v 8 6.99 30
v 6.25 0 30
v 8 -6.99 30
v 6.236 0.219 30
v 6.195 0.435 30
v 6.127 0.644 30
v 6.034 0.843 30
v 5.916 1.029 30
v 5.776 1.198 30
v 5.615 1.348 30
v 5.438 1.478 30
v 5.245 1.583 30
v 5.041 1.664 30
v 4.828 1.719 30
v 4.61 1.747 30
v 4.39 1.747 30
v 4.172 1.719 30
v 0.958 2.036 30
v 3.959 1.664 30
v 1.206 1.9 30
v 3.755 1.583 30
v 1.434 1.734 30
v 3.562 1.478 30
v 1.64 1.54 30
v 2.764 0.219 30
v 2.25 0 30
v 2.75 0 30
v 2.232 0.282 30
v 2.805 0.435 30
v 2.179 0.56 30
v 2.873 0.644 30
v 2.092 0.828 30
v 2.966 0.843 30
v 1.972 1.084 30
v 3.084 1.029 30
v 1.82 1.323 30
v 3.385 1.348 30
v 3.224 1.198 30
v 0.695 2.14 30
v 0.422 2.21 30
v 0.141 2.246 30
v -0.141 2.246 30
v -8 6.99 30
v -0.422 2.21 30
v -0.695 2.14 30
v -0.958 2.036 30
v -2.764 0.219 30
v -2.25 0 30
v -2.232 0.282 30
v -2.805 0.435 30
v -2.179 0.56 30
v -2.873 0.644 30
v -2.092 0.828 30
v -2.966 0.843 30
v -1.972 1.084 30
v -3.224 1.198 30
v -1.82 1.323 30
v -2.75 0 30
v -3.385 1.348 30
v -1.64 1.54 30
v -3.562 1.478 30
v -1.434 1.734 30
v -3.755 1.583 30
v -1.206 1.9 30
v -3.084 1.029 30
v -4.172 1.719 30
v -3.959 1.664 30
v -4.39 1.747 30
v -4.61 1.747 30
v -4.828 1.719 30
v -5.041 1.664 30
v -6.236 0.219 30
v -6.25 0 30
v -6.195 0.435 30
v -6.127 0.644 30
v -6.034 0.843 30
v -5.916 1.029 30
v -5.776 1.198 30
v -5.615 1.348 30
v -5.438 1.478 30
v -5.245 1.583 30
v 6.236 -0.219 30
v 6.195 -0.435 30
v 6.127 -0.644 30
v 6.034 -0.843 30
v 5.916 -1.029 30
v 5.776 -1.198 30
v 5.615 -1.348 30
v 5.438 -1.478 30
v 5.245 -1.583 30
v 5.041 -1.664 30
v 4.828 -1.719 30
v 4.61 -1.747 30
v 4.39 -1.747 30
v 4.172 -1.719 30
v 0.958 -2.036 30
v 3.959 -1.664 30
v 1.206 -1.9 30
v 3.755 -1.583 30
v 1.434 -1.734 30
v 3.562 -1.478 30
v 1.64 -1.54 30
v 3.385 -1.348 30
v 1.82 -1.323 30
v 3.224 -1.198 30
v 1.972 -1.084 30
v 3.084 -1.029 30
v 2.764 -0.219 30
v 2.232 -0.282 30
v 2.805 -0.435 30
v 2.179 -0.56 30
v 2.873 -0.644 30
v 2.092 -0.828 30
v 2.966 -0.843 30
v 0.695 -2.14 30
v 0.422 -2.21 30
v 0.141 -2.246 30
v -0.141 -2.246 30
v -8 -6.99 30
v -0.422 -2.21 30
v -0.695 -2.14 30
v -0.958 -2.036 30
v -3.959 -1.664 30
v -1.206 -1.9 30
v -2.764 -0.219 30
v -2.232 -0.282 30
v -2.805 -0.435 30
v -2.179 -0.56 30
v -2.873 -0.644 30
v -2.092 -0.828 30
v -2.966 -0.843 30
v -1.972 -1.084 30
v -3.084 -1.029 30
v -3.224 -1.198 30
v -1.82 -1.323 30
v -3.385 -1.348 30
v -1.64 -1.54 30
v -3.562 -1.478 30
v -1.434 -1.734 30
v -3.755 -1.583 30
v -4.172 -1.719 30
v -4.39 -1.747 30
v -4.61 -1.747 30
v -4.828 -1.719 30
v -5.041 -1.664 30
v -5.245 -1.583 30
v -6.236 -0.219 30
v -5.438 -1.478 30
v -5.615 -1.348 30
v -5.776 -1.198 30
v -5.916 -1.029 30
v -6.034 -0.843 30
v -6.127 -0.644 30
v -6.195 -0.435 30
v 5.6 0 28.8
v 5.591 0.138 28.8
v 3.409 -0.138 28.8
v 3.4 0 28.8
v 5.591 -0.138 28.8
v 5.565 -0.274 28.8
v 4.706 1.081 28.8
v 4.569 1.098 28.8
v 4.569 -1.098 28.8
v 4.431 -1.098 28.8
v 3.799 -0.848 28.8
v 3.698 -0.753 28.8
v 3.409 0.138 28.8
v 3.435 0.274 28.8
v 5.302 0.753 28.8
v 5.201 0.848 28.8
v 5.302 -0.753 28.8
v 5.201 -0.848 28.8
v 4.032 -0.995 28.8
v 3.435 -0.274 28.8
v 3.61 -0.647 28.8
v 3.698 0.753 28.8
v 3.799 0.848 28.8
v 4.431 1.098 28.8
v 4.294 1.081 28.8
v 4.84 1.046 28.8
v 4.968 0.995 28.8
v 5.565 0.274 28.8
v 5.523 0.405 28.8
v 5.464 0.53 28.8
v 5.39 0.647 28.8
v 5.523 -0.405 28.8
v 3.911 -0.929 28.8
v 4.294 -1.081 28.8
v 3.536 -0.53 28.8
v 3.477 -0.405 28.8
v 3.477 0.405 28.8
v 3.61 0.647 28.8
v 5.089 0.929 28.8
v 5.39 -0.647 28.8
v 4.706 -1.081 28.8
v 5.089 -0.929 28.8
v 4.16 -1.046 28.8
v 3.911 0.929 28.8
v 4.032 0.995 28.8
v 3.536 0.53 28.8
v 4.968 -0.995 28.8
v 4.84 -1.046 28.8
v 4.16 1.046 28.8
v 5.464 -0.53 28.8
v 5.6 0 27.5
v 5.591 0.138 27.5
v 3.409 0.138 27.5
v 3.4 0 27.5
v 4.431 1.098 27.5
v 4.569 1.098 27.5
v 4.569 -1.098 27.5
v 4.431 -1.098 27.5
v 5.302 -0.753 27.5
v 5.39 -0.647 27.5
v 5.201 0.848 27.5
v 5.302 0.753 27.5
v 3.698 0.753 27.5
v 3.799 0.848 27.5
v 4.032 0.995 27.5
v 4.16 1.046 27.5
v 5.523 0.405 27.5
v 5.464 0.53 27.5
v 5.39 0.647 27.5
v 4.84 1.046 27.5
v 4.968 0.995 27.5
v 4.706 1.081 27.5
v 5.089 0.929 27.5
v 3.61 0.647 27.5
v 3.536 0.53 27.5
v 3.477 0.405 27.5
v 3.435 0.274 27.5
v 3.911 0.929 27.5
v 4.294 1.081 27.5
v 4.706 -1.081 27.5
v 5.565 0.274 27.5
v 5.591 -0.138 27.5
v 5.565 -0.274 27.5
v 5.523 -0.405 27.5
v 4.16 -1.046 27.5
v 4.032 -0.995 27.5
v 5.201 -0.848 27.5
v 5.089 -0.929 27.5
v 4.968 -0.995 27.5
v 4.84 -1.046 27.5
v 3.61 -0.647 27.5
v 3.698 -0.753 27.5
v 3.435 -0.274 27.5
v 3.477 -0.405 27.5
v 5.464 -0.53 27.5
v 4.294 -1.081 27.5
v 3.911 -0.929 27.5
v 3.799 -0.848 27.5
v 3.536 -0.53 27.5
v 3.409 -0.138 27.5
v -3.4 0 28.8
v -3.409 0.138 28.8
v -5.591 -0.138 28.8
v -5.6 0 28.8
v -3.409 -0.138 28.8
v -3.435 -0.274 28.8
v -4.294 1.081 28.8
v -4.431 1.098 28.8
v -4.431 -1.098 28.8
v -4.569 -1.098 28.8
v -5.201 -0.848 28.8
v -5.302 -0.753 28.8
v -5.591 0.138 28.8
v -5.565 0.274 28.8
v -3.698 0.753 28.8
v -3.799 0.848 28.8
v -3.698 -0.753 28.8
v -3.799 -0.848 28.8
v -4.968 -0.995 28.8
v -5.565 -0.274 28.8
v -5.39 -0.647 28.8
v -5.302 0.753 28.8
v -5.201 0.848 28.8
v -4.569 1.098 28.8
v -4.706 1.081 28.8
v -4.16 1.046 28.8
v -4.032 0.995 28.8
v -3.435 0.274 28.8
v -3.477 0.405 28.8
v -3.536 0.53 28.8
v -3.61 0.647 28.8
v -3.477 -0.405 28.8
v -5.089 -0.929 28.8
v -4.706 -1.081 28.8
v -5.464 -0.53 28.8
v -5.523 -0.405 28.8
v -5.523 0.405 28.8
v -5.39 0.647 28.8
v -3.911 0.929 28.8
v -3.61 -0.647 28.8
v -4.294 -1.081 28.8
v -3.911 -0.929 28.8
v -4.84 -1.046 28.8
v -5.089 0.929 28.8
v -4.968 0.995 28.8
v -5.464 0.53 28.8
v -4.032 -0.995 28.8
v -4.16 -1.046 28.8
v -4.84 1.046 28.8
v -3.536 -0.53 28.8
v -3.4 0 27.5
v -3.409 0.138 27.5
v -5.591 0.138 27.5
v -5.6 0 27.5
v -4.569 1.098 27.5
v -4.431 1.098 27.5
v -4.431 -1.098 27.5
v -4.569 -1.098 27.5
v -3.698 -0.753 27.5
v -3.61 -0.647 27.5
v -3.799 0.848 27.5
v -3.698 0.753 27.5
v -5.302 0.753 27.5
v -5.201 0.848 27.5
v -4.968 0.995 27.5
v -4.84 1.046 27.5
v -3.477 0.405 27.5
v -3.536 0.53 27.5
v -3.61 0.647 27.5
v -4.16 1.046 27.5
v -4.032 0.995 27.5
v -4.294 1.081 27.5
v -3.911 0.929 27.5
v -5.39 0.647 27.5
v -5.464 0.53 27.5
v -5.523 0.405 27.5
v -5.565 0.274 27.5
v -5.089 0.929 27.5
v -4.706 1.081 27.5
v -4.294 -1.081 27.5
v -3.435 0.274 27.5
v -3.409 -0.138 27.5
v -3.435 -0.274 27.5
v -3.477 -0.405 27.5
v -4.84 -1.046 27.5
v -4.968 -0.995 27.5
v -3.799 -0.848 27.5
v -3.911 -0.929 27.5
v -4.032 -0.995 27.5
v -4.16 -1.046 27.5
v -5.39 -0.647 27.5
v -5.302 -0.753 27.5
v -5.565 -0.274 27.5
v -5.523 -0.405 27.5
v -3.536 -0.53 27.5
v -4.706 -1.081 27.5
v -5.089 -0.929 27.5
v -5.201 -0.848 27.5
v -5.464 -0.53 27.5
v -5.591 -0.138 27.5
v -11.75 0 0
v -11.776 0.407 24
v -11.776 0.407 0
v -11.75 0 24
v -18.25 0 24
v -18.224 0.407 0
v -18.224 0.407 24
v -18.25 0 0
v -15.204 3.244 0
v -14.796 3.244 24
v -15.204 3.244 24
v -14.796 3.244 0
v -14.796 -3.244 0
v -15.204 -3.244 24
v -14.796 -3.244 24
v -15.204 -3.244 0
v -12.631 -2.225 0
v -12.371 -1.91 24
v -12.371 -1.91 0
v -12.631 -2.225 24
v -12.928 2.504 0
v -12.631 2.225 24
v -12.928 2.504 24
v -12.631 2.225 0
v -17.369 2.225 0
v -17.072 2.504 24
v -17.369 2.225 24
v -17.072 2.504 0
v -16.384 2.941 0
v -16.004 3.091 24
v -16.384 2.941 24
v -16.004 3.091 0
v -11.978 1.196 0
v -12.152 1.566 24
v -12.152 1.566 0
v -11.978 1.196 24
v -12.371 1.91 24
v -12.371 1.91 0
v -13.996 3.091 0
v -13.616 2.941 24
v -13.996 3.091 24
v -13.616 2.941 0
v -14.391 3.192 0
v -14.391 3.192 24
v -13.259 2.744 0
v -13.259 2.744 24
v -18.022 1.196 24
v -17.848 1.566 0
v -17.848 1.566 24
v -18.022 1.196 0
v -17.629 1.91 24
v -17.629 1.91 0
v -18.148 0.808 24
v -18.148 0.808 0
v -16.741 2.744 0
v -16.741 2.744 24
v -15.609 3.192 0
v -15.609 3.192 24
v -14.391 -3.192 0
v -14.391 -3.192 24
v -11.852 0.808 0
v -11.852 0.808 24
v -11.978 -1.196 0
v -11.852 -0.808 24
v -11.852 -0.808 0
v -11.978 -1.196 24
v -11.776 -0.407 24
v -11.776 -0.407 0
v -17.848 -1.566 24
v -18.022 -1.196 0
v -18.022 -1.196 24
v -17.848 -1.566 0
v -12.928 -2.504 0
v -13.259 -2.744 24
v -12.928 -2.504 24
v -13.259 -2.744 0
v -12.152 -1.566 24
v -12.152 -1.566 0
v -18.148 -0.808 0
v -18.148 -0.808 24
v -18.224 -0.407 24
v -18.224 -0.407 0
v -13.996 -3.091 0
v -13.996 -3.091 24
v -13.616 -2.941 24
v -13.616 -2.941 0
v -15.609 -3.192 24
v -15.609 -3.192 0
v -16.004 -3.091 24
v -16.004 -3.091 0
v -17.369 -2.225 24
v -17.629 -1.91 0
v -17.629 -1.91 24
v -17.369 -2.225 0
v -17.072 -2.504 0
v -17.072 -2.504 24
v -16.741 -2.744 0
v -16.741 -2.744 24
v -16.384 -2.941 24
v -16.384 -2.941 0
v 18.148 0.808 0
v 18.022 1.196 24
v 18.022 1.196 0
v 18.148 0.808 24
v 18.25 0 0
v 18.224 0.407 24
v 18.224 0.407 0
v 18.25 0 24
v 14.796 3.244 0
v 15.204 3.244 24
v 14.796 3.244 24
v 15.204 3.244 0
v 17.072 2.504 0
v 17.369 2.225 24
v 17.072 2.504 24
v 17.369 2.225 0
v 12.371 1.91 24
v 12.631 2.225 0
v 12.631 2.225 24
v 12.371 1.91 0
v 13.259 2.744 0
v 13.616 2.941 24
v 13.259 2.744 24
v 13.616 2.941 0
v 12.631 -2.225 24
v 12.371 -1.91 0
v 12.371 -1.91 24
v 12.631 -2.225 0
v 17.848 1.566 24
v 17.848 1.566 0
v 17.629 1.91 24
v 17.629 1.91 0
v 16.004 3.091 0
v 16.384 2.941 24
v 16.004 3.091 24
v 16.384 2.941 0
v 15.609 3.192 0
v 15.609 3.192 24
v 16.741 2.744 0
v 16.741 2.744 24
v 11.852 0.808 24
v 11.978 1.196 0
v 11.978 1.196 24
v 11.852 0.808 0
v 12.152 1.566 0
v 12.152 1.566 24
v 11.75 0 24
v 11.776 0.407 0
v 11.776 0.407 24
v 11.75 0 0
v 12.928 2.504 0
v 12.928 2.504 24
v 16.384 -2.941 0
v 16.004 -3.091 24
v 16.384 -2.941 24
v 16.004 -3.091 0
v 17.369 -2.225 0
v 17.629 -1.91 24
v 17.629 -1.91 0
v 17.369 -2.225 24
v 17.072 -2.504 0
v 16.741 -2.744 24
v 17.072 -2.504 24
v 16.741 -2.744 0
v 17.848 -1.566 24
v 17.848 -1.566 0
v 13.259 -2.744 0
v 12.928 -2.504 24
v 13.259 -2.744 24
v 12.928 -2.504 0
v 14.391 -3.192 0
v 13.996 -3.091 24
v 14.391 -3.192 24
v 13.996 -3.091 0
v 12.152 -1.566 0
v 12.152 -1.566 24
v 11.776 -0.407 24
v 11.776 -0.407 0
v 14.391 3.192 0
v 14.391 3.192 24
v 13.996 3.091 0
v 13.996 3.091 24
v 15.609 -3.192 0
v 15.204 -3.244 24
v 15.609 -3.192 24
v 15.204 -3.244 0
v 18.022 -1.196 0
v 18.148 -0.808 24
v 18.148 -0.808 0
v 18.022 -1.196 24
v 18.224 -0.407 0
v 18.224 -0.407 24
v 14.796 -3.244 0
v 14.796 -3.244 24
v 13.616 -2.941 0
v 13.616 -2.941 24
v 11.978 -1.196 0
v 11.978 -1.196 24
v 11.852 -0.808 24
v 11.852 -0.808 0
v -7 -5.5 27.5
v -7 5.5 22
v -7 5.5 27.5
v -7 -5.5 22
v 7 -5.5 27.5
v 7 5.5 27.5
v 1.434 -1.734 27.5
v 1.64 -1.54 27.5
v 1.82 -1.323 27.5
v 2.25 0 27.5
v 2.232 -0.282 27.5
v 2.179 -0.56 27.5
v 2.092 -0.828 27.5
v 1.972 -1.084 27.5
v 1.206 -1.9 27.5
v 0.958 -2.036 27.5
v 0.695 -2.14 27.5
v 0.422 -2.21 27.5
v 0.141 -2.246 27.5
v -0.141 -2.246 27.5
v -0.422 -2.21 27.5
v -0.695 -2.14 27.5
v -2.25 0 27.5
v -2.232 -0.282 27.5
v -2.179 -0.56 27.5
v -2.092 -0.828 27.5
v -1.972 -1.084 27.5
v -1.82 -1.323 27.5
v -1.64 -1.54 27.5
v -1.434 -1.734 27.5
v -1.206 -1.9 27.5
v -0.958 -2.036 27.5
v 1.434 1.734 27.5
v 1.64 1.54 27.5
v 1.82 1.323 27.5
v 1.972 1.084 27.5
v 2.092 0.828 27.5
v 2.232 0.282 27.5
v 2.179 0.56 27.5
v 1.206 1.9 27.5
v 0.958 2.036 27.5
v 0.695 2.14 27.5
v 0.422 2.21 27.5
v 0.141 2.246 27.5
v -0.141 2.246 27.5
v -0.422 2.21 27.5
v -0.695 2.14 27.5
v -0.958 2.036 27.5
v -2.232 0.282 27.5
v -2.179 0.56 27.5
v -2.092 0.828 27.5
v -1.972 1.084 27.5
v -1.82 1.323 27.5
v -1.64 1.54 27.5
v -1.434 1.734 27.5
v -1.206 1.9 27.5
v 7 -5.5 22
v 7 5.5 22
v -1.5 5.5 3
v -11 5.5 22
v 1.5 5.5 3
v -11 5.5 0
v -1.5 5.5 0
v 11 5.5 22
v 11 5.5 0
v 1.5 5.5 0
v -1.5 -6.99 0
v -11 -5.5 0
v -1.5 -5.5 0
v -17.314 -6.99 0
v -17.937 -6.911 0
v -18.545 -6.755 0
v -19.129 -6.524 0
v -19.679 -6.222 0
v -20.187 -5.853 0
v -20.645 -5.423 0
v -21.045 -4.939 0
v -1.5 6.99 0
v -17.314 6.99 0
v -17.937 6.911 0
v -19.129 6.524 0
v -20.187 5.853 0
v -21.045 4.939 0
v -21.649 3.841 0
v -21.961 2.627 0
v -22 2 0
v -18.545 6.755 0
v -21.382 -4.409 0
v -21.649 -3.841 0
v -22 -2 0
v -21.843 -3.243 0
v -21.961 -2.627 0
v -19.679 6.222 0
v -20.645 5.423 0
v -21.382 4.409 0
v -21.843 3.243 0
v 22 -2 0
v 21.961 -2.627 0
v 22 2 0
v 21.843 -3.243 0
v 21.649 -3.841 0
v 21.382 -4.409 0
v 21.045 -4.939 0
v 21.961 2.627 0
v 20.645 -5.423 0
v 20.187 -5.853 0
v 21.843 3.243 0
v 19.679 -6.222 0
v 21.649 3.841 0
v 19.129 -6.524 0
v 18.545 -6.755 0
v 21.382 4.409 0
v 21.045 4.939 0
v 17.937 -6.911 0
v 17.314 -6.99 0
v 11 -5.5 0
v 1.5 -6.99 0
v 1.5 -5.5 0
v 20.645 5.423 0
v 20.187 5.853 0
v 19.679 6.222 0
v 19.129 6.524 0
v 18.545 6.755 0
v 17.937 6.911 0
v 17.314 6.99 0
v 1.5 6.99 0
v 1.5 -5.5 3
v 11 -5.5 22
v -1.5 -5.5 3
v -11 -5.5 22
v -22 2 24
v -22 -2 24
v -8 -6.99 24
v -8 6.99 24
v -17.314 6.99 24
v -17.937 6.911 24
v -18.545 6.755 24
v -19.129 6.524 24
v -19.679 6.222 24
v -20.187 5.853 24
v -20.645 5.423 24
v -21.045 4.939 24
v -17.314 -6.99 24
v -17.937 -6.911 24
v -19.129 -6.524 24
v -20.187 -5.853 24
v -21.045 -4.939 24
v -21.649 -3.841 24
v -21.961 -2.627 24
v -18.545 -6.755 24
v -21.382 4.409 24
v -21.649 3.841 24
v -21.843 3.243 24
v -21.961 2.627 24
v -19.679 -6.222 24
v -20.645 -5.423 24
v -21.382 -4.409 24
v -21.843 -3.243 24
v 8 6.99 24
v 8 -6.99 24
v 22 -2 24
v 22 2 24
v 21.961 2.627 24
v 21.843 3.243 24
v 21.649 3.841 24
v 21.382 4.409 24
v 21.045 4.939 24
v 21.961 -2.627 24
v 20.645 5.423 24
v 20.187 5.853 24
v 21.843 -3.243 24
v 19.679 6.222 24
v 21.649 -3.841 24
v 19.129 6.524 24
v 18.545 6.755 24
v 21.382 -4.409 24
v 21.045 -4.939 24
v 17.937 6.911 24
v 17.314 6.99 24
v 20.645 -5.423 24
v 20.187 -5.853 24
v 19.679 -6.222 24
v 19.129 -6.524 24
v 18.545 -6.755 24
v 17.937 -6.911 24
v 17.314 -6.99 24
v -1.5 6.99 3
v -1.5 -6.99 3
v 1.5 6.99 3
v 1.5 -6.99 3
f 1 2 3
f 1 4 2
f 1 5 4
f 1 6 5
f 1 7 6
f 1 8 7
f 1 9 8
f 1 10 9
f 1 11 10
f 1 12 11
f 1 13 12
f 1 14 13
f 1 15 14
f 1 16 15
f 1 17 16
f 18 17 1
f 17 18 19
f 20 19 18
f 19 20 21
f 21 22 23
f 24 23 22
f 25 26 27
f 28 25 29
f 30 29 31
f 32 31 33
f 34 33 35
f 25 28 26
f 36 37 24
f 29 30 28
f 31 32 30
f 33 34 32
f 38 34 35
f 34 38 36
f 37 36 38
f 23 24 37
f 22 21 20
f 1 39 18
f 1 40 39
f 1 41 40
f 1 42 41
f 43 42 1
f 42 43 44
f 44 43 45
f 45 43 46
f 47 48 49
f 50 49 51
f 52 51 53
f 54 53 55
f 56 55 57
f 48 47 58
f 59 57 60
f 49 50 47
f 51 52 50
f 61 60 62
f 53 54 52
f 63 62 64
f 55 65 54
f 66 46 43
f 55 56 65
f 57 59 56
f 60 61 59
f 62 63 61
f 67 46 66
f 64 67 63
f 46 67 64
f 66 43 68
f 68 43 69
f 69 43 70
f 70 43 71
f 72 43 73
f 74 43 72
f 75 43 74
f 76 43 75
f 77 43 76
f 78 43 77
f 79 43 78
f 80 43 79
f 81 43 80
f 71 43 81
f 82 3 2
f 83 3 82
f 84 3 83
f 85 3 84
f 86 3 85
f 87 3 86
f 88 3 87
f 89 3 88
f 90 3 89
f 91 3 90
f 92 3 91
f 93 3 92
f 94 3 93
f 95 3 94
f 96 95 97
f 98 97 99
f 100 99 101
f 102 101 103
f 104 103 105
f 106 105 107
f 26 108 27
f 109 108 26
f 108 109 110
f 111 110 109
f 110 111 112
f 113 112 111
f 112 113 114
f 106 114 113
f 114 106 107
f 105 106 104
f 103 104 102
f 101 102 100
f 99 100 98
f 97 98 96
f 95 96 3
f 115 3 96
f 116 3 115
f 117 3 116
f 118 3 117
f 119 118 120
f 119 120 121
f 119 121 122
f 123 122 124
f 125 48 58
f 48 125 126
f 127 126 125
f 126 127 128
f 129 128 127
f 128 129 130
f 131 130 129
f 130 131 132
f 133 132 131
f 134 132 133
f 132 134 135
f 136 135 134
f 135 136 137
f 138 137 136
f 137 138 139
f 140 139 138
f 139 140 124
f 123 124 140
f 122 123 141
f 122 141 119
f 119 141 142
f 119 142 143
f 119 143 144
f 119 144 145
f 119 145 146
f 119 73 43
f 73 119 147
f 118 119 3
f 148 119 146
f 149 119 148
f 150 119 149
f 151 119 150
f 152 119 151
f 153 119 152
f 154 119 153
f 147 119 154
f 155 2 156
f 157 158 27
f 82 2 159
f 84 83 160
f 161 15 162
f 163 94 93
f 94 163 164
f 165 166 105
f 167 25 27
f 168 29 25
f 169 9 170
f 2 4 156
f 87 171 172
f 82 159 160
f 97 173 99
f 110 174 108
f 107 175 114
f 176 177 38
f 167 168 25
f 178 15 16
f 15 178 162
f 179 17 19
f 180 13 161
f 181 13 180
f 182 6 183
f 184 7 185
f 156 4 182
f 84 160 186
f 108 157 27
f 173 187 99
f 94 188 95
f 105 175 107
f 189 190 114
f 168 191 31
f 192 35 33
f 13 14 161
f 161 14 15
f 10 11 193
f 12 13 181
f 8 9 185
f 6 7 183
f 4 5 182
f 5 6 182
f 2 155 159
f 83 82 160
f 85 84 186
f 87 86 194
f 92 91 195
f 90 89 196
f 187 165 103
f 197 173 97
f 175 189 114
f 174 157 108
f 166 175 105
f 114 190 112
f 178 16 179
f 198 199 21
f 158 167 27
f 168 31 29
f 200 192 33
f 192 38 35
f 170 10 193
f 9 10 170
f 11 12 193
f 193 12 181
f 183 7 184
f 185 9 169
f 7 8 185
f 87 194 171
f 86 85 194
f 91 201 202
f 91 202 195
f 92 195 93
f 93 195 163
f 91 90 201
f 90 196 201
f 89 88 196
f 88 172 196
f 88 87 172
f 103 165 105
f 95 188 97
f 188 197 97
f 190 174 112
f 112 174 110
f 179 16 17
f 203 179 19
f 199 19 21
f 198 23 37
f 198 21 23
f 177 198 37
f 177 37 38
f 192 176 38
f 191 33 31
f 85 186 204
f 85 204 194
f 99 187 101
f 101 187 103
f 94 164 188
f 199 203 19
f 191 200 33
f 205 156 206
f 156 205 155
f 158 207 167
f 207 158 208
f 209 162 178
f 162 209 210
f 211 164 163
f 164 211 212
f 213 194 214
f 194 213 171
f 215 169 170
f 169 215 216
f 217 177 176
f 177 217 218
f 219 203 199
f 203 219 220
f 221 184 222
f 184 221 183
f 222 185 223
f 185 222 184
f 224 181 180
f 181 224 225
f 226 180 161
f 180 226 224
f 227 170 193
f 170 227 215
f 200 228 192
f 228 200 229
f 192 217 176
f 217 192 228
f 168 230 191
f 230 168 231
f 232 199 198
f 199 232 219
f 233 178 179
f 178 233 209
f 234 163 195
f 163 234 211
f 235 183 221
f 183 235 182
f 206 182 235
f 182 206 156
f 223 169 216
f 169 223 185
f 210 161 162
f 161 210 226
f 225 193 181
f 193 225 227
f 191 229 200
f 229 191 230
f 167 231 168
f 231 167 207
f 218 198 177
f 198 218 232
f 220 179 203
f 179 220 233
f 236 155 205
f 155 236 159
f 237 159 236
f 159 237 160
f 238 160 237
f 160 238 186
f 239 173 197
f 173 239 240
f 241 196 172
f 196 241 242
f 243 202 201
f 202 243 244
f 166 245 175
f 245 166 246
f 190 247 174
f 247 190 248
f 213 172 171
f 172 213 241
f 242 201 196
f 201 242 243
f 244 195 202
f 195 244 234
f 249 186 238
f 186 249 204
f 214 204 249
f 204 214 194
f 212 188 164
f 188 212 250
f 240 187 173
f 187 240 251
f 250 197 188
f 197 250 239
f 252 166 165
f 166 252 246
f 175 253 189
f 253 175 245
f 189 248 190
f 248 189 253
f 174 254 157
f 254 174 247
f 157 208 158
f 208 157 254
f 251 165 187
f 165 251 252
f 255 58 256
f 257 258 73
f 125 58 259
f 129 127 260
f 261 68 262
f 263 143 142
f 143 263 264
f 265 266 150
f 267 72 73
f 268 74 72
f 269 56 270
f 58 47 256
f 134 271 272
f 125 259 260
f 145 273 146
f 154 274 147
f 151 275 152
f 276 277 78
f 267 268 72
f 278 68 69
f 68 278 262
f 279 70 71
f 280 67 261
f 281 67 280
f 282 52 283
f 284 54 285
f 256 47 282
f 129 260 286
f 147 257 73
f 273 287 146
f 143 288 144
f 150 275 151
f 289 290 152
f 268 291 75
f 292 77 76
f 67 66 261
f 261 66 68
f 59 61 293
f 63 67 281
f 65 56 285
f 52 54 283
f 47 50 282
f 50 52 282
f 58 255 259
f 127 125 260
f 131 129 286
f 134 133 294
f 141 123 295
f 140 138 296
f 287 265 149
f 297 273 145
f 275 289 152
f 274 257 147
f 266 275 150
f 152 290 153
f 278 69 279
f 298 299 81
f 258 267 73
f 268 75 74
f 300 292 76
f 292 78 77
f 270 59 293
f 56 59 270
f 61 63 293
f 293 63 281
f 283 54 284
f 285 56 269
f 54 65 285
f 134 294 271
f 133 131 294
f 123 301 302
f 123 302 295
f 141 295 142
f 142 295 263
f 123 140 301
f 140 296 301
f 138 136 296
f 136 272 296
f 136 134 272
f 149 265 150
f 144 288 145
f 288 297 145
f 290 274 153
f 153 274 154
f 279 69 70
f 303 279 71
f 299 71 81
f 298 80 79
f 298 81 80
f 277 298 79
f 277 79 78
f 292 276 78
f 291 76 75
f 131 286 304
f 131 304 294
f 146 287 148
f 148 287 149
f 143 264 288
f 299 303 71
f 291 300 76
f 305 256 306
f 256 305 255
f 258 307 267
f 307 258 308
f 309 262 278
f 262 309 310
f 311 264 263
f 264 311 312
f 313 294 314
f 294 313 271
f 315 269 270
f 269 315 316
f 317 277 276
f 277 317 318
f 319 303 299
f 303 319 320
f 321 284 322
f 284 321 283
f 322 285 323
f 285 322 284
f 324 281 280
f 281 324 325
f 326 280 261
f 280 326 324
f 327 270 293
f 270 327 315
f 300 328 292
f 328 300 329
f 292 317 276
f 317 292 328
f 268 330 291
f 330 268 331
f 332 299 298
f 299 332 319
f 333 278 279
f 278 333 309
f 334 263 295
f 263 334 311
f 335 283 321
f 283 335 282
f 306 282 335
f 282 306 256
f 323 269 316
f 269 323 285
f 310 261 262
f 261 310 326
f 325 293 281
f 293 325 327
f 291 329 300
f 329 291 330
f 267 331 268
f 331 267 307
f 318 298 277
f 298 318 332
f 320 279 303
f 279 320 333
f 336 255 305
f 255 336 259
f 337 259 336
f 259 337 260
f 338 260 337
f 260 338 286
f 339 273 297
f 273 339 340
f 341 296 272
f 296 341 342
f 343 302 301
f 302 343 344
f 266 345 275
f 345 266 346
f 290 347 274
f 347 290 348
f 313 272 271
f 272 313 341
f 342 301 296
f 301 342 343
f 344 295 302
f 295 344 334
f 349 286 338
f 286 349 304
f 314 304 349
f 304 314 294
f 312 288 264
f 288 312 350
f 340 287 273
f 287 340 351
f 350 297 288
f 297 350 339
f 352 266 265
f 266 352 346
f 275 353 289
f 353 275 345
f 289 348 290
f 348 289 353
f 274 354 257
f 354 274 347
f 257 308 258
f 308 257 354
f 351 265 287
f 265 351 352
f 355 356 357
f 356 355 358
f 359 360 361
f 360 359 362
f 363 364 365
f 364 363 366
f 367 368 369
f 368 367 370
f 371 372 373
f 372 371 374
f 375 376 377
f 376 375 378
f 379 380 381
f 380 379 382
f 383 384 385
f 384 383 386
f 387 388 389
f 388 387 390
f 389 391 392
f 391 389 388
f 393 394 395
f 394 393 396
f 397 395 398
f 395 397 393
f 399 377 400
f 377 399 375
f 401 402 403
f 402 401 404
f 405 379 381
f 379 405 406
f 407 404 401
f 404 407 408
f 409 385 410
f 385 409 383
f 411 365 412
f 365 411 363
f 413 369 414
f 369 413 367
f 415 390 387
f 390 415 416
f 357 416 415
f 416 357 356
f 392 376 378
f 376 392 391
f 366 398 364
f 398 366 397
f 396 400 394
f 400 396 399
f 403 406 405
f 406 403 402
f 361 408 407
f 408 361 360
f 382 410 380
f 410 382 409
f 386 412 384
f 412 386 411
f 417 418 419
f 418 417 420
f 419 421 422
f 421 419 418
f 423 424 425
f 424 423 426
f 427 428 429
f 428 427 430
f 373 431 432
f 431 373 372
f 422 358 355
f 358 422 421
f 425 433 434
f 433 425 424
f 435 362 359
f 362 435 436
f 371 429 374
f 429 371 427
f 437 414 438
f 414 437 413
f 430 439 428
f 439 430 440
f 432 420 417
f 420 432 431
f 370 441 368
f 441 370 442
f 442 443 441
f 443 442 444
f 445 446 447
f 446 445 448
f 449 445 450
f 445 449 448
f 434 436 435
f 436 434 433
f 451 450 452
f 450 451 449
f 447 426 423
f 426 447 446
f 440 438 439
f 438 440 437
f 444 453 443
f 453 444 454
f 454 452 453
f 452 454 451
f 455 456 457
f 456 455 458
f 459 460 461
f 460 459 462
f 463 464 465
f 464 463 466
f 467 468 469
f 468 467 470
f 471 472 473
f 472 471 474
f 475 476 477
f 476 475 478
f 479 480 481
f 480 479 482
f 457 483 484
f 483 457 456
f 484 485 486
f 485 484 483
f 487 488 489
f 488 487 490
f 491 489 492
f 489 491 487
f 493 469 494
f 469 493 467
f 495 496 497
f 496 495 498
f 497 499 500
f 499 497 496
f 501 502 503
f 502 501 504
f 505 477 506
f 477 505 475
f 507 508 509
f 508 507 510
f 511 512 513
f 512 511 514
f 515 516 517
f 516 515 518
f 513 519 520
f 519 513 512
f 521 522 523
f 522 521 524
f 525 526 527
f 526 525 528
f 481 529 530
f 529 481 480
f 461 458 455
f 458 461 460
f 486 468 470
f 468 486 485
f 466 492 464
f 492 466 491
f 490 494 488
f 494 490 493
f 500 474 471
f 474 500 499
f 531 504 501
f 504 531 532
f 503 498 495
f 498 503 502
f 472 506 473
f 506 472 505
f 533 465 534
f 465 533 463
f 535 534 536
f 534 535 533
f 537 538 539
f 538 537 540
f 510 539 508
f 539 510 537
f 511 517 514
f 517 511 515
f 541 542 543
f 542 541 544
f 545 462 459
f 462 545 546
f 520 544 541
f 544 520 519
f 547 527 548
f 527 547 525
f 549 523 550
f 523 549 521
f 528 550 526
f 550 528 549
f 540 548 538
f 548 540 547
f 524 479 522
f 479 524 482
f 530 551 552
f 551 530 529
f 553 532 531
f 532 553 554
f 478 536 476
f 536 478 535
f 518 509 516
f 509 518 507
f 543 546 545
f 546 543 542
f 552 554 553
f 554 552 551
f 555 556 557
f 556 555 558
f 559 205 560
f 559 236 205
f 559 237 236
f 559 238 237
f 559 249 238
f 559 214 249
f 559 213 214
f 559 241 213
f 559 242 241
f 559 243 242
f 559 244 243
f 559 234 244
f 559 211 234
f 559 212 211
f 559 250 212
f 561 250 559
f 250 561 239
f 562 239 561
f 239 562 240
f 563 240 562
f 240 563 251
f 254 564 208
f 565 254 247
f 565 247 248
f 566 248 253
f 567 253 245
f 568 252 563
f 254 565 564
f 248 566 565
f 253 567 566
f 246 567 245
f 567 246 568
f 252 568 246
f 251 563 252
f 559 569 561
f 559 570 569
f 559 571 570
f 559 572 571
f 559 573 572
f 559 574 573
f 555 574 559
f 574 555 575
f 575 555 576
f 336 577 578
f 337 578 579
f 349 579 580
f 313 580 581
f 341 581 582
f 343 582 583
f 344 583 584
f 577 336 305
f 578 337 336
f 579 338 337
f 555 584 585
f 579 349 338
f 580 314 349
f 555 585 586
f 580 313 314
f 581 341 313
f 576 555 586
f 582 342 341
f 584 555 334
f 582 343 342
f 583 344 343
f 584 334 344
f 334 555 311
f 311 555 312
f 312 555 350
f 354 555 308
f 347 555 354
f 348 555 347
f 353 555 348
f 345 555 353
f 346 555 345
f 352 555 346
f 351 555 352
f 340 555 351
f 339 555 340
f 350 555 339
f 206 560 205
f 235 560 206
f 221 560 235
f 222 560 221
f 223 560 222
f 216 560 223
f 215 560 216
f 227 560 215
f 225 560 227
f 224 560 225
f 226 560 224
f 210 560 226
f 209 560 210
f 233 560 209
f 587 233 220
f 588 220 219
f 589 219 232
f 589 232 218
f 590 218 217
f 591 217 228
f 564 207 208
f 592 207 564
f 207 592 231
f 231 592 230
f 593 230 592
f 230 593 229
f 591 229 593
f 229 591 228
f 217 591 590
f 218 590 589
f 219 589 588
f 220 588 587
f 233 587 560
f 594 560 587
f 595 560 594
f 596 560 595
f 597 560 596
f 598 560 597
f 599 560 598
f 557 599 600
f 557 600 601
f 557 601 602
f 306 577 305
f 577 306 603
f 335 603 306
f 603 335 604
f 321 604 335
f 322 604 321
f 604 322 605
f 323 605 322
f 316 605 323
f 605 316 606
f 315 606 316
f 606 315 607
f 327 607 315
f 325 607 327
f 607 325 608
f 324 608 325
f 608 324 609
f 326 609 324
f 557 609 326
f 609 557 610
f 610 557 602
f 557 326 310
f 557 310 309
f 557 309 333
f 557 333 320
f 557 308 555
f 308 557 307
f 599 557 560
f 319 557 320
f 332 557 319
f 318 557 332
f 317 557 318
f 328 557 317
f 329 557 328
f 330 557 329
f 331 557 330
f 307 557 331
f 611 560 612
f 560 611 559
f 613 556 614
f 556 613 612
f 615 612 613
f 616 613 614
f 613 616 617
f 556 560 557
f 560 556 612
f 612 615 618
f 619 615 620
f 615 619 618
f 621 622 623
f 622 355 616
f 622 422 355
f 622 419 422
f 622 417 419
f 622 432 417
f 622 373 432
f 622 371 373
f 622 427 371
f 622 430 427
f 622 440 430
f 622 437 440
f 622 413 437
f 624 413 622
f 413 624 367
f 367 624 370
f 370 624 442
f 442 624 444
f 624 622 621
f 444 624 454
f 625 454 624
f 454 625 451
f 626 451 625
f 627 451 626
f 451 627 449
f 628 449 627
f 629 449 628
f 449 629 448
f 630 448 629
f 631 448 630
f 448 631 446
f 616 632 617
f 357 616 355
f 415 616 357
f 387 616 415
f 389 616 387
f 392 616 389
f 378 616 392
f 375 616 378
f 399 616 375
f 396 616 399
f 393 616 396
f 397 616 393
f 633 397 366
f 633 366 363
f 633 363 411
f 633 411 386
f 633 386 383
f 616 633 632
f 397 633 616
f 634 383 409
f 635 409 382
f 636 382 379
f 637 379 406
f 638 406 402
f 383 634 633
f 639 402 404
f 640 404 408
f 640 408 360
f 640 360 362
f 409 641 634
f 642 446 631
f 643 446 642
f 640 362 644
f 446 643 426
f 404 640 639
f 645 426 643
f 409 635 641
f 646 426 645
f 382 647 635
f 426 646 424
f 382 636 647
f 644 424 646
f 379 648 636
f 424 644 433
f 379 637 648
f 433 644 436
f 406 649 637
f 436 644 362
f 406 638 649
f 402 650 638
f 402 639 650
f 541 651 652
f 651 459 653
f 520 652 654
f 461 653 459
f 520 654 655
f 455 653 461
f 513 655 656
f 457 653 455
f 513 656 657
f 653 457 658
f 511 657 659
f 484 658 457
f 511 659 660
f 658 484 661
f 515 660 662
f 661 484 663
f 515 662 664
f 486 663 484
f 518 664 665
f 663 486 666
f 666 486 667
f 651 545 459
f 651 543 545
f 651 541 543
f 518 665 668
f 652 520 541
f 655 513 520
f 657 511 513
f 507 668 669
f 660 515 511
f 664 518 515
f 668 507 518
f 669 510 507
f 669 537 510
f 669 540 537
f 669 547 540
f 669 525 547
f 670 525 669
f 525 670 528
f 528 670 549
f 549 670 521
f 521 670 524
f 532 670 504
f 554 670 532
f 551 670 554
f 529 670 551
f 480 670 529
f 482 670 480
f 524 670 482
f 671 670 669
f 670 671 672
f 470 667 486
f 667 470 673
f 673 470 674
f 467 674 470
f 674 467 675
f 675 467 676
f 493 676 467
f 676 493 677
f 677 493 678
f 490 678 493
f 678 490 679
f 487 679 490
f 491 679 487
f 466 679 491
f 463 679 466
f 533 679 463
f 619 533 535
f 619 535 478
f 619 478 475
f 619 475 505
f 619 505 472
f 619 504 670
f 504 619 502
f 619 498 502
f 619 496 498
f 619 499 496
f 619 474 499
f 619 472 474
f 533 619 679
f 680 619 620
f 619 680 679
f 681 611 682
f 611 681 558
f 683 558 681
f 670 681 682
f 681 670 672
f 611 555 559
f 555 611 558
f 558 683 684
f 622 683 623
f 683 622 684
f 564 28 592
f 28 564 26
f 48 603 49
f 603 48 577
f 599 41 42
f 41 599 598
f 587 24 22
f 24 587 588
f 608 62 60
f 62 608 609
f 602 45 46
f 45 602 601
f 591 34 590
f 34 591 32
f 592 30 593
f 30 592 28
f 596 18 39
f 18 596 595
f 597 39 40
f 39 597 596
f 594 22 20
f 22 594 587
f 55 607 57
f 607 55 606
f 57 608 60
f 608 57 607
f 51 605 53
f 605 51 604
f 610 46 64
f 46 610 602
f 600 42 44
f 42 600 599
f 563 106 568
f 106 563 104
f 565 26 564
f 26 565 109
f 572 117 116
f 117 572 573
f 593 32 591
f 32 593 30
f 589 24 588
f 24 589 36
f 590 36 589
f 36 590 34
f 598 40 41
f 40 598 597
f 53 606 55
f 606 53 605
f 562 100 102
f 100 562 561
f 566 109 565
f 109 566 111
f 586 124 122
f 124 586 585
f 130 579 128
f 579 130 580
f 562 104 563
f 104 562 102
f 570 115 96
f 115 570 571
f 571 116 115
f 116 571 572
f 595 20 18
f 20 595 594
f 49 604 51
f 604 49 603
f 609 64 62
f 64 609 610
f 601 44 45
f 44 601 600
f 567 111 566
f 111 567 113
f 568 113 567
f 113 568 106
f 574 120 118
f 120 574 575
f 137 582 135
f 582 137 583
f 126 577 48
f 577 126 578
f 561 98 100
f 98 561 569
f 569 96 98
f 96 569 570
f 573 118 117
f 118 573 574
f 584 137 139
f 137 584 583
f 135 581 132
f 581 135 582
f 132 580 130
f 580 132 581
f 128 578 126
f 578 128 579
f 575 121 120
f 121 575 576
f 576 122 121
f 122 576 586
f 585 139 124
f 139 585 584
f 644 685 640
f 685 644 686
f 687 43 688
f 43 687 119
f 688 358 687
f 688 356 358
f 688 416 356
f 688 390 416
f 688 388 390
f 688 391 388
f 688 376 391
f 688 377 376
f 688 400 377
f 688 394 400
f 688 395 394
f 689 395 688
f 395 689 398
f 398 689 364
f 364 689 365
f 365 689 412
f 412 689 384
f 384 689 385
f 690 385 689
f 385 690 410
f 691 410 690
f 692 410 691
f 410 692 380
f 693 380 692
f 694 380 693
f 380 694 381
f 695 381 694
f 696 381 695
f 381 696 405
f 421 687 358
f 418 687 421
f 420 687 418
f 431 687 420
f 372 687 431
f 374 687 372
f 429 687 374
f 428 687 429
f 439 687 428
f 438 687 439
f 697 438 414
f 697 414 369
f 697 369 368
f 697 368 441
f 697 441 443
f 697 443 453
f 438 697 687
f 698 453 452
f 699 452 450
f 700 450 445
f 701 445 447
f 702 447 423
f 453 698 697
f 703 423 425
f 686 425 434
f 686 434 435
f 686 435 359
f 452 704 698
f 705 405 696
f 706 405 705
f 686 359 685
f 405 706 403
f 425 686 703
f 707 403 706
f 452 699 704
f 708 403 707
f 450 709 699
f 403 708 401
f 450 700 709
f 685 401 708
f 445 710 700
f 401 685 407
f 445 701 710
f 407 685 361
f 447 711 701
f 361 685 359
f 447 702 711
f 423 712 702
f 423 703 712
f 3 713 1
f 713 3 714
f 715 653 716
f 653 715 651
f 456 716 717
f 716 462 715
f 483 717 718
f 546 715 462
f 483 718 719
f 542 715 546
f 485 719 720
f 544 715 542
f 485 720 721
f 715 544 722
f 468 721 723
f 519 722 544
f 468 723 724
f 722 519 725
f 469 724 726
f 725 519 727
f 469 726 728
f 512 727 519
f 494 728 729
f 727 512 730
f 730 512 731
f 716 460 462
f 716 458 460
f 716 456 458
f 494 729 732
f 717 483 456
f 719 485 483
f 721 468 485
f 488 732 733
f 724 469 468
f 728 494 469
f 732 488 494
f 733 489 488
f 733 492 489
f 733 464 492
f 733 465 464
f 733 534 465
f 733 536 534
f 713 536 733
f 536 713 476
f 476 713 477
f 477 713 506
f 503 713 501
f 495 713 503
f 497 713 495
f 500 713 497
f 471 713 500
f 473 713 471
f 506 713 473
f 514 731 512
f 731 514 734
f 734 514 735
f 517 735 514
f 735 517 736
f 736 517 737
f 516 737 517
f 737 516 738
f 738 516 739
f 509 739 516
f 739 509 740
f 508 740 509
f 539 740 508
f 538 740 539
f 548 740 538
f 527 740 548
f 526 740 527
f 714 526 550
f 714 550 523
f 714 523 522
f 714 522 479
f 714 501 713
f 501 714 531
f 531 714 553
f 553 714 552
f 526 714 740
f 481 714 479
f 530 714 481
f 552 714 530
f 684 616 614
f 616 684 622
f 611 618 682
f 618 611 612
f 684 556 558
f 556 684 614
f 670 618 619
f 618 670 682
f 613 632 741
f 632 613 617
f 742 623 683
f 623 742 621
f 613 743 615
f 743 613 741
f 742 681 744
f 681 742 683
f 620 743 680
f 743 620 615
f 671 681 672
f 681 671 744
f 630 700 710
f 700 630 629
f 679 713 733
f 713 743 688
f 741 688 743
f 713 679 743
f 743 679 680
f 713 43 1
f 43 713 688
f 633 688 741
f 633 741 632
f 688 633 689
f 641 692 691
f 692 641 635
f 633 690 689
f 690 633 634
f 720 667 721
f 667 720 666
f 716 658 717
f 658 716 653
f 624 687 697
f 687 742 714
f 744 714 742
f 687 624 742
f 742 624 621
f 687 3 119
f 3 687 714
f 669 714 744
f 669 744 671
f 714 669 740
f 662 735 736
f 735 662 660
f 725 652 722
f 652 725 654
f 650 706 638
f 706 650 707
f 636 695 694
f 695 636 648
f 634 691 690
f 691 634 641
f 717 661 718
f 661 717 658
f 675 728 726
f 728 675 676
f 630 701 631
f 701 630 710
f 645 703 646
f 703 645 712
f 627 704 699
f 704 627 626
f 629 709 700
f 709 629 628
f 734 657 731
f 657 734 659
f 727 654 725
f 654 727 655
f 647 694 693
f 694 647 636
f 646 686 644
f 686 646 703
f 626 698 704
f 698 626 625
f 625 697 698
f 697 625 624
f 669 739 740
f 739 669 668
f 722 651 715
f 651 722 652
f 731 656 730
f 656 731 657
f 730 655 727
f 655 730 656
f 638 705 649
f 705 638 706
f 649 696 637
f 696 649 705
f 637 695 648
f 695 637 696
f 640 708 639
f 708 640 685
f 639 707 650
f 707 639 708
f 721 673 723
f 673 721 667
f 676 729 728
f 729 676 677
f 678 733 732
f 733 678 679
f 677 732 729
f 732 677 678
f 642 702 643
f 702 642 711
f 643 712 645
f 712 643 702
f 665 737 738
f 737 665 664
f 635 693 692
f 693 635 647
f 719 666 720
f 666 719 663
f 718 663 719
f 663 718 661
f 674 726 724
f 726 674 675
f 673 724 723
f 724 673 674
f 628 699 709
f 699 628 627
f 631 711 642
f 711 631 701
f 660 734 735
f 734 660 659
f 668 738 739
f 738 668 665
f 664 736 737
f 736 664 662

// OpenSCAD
$fn = 50;


difference() {
	union() {
		hull() {
			translate(v = [-17.0000000000, 2.0000000000, 0]) {
				cylinder(h = 30, r = 5);
			}
			translate(v = [17.0000000000, 2.0000000000, 0]) {
				cylinder(h = 30, r = 5);
			}
			translate(v = [-17.0000000000, -2.0000000000, 0]) {
				cylinder(h = 30, r = 5);
			}
			translate(v = [17.0000000000, -2.0000000000, 0]) {
				cylinder(h = 30, r = 5);
			}
		}
	}
	union() {
		translate(v = [4.5000000000, 0, 30]) {
			rotate(a = [0, 0, 0]) {
				difference() {
					union() {
						translate(v = [0, 0, -4.0000000000]) {
							cylinder(h = 4, r = 0.8500000000);
						}
						translate(v = [0, 0, -1.2000000000]) {
							cylinder(h = 1.2000000000, r1 = 1.1000000000, r2 = 1.7500000000);
						}
						translate(v = [0, 0, -4.0000000000]) {
							cylinder(h = 4, r = 1.1000000000);
						}
						translate(v = [0, 0, -4.0000000000]) {
							cylinder(h = 4, r = 0.8500000000);
						}
					}
					union();
				}
			}
		}
		translate(v = [-4.5000000000, 0, 30]) {
			rotate(a = [0, 0, 0]) {
				difference() {
					union() {
						translate(v = [0, 0, -4.0000000000]) {
							cylinder(h = 4, r = 0.8500000000);
						}
						translate(v = [0, 0, -1.2000000000]) {
							cylinder(h = 1.2000000000, r1 = 1.1000000000, r2 = 1.7500000000);
						}
						translate(v = [0, 0, -4.0000000000]) {
							cylinder(h = 4, r = 1.1000000000);
						}
						translate(v = [0, 0, -4.0000000000]) {
							cylinder(h = 4, r = 0.8500000000);
						}
					}
					union();
				}
			}
		}
		translate(v = [-15.0000000000, 0.0000000000, -100.0000000000]) {
			cylinder(h = 200, r = 3.2500000000);
		}
		translate(v = [15.0000000000, 0.0000000000, -100.0000000000]) {
			cylinder(h = 200, r = 3.2500000000);
		}
		translate(v = [15.0000000000, 0.0000000000, -100.0000000000]) {
			cylinder(h = 200, r = 3.2500000000);
		}
		translate(v = [-15.0000000000, 0.0000000000, -100.0000000000]) {
			cylinder(h = 200, r = 1.8000000000);
		}
		translate(v = [15.0000000000, 0.0000000000, -100.0000000000]) {
			cylinder(h = 200, r = 1.8000000000);
		}
		translate(v = [-15.0000000000, 0.0000000000, -100.0000000000]) {
			cylinder(h = 200, r = 1.8000000000);
		}
		translate(v = [15.0000000000, 0.0000000000, -100.0000000000]) {
			cylinder(h = 200, r = 1.8000000000);
		}
		translate(v = [-15.0000000000, 0.0000000000, -100.0000000000]) {
			cylinder(h = 200, r = 1.8000000000);
		}
		translate(v = [15.0000000000, 0.0000000000, -100.0000000000]) {
			cylinder(h = 200, r = 1.8000000000);
		}
		translate(v = [-7.0000000000, -5.5000000000, 0]) {
			cube(size = [14, 11, 27.5000000000]);
		}
		cylinder(h = 30, r = 2.2500000000);
		translate(v = [-22.0000000000, -7.0000000000, 24]) {
			cube(size = [14, 14, 6]);
		}
		translate(v = [8.0000000000, -7.0000000000, 24]) {
			cube(size = [14, 14, 6]);
		}
		translate(v = [-11.0000000000, -5.5000000000, 0]) {
			cube(size = [22, 11, 22]);
		}
		translate(v = [-1.5000000000, -22.5000000000, 0]) {
			cube(size = [3, 45, 3]);
		}
	}
}
